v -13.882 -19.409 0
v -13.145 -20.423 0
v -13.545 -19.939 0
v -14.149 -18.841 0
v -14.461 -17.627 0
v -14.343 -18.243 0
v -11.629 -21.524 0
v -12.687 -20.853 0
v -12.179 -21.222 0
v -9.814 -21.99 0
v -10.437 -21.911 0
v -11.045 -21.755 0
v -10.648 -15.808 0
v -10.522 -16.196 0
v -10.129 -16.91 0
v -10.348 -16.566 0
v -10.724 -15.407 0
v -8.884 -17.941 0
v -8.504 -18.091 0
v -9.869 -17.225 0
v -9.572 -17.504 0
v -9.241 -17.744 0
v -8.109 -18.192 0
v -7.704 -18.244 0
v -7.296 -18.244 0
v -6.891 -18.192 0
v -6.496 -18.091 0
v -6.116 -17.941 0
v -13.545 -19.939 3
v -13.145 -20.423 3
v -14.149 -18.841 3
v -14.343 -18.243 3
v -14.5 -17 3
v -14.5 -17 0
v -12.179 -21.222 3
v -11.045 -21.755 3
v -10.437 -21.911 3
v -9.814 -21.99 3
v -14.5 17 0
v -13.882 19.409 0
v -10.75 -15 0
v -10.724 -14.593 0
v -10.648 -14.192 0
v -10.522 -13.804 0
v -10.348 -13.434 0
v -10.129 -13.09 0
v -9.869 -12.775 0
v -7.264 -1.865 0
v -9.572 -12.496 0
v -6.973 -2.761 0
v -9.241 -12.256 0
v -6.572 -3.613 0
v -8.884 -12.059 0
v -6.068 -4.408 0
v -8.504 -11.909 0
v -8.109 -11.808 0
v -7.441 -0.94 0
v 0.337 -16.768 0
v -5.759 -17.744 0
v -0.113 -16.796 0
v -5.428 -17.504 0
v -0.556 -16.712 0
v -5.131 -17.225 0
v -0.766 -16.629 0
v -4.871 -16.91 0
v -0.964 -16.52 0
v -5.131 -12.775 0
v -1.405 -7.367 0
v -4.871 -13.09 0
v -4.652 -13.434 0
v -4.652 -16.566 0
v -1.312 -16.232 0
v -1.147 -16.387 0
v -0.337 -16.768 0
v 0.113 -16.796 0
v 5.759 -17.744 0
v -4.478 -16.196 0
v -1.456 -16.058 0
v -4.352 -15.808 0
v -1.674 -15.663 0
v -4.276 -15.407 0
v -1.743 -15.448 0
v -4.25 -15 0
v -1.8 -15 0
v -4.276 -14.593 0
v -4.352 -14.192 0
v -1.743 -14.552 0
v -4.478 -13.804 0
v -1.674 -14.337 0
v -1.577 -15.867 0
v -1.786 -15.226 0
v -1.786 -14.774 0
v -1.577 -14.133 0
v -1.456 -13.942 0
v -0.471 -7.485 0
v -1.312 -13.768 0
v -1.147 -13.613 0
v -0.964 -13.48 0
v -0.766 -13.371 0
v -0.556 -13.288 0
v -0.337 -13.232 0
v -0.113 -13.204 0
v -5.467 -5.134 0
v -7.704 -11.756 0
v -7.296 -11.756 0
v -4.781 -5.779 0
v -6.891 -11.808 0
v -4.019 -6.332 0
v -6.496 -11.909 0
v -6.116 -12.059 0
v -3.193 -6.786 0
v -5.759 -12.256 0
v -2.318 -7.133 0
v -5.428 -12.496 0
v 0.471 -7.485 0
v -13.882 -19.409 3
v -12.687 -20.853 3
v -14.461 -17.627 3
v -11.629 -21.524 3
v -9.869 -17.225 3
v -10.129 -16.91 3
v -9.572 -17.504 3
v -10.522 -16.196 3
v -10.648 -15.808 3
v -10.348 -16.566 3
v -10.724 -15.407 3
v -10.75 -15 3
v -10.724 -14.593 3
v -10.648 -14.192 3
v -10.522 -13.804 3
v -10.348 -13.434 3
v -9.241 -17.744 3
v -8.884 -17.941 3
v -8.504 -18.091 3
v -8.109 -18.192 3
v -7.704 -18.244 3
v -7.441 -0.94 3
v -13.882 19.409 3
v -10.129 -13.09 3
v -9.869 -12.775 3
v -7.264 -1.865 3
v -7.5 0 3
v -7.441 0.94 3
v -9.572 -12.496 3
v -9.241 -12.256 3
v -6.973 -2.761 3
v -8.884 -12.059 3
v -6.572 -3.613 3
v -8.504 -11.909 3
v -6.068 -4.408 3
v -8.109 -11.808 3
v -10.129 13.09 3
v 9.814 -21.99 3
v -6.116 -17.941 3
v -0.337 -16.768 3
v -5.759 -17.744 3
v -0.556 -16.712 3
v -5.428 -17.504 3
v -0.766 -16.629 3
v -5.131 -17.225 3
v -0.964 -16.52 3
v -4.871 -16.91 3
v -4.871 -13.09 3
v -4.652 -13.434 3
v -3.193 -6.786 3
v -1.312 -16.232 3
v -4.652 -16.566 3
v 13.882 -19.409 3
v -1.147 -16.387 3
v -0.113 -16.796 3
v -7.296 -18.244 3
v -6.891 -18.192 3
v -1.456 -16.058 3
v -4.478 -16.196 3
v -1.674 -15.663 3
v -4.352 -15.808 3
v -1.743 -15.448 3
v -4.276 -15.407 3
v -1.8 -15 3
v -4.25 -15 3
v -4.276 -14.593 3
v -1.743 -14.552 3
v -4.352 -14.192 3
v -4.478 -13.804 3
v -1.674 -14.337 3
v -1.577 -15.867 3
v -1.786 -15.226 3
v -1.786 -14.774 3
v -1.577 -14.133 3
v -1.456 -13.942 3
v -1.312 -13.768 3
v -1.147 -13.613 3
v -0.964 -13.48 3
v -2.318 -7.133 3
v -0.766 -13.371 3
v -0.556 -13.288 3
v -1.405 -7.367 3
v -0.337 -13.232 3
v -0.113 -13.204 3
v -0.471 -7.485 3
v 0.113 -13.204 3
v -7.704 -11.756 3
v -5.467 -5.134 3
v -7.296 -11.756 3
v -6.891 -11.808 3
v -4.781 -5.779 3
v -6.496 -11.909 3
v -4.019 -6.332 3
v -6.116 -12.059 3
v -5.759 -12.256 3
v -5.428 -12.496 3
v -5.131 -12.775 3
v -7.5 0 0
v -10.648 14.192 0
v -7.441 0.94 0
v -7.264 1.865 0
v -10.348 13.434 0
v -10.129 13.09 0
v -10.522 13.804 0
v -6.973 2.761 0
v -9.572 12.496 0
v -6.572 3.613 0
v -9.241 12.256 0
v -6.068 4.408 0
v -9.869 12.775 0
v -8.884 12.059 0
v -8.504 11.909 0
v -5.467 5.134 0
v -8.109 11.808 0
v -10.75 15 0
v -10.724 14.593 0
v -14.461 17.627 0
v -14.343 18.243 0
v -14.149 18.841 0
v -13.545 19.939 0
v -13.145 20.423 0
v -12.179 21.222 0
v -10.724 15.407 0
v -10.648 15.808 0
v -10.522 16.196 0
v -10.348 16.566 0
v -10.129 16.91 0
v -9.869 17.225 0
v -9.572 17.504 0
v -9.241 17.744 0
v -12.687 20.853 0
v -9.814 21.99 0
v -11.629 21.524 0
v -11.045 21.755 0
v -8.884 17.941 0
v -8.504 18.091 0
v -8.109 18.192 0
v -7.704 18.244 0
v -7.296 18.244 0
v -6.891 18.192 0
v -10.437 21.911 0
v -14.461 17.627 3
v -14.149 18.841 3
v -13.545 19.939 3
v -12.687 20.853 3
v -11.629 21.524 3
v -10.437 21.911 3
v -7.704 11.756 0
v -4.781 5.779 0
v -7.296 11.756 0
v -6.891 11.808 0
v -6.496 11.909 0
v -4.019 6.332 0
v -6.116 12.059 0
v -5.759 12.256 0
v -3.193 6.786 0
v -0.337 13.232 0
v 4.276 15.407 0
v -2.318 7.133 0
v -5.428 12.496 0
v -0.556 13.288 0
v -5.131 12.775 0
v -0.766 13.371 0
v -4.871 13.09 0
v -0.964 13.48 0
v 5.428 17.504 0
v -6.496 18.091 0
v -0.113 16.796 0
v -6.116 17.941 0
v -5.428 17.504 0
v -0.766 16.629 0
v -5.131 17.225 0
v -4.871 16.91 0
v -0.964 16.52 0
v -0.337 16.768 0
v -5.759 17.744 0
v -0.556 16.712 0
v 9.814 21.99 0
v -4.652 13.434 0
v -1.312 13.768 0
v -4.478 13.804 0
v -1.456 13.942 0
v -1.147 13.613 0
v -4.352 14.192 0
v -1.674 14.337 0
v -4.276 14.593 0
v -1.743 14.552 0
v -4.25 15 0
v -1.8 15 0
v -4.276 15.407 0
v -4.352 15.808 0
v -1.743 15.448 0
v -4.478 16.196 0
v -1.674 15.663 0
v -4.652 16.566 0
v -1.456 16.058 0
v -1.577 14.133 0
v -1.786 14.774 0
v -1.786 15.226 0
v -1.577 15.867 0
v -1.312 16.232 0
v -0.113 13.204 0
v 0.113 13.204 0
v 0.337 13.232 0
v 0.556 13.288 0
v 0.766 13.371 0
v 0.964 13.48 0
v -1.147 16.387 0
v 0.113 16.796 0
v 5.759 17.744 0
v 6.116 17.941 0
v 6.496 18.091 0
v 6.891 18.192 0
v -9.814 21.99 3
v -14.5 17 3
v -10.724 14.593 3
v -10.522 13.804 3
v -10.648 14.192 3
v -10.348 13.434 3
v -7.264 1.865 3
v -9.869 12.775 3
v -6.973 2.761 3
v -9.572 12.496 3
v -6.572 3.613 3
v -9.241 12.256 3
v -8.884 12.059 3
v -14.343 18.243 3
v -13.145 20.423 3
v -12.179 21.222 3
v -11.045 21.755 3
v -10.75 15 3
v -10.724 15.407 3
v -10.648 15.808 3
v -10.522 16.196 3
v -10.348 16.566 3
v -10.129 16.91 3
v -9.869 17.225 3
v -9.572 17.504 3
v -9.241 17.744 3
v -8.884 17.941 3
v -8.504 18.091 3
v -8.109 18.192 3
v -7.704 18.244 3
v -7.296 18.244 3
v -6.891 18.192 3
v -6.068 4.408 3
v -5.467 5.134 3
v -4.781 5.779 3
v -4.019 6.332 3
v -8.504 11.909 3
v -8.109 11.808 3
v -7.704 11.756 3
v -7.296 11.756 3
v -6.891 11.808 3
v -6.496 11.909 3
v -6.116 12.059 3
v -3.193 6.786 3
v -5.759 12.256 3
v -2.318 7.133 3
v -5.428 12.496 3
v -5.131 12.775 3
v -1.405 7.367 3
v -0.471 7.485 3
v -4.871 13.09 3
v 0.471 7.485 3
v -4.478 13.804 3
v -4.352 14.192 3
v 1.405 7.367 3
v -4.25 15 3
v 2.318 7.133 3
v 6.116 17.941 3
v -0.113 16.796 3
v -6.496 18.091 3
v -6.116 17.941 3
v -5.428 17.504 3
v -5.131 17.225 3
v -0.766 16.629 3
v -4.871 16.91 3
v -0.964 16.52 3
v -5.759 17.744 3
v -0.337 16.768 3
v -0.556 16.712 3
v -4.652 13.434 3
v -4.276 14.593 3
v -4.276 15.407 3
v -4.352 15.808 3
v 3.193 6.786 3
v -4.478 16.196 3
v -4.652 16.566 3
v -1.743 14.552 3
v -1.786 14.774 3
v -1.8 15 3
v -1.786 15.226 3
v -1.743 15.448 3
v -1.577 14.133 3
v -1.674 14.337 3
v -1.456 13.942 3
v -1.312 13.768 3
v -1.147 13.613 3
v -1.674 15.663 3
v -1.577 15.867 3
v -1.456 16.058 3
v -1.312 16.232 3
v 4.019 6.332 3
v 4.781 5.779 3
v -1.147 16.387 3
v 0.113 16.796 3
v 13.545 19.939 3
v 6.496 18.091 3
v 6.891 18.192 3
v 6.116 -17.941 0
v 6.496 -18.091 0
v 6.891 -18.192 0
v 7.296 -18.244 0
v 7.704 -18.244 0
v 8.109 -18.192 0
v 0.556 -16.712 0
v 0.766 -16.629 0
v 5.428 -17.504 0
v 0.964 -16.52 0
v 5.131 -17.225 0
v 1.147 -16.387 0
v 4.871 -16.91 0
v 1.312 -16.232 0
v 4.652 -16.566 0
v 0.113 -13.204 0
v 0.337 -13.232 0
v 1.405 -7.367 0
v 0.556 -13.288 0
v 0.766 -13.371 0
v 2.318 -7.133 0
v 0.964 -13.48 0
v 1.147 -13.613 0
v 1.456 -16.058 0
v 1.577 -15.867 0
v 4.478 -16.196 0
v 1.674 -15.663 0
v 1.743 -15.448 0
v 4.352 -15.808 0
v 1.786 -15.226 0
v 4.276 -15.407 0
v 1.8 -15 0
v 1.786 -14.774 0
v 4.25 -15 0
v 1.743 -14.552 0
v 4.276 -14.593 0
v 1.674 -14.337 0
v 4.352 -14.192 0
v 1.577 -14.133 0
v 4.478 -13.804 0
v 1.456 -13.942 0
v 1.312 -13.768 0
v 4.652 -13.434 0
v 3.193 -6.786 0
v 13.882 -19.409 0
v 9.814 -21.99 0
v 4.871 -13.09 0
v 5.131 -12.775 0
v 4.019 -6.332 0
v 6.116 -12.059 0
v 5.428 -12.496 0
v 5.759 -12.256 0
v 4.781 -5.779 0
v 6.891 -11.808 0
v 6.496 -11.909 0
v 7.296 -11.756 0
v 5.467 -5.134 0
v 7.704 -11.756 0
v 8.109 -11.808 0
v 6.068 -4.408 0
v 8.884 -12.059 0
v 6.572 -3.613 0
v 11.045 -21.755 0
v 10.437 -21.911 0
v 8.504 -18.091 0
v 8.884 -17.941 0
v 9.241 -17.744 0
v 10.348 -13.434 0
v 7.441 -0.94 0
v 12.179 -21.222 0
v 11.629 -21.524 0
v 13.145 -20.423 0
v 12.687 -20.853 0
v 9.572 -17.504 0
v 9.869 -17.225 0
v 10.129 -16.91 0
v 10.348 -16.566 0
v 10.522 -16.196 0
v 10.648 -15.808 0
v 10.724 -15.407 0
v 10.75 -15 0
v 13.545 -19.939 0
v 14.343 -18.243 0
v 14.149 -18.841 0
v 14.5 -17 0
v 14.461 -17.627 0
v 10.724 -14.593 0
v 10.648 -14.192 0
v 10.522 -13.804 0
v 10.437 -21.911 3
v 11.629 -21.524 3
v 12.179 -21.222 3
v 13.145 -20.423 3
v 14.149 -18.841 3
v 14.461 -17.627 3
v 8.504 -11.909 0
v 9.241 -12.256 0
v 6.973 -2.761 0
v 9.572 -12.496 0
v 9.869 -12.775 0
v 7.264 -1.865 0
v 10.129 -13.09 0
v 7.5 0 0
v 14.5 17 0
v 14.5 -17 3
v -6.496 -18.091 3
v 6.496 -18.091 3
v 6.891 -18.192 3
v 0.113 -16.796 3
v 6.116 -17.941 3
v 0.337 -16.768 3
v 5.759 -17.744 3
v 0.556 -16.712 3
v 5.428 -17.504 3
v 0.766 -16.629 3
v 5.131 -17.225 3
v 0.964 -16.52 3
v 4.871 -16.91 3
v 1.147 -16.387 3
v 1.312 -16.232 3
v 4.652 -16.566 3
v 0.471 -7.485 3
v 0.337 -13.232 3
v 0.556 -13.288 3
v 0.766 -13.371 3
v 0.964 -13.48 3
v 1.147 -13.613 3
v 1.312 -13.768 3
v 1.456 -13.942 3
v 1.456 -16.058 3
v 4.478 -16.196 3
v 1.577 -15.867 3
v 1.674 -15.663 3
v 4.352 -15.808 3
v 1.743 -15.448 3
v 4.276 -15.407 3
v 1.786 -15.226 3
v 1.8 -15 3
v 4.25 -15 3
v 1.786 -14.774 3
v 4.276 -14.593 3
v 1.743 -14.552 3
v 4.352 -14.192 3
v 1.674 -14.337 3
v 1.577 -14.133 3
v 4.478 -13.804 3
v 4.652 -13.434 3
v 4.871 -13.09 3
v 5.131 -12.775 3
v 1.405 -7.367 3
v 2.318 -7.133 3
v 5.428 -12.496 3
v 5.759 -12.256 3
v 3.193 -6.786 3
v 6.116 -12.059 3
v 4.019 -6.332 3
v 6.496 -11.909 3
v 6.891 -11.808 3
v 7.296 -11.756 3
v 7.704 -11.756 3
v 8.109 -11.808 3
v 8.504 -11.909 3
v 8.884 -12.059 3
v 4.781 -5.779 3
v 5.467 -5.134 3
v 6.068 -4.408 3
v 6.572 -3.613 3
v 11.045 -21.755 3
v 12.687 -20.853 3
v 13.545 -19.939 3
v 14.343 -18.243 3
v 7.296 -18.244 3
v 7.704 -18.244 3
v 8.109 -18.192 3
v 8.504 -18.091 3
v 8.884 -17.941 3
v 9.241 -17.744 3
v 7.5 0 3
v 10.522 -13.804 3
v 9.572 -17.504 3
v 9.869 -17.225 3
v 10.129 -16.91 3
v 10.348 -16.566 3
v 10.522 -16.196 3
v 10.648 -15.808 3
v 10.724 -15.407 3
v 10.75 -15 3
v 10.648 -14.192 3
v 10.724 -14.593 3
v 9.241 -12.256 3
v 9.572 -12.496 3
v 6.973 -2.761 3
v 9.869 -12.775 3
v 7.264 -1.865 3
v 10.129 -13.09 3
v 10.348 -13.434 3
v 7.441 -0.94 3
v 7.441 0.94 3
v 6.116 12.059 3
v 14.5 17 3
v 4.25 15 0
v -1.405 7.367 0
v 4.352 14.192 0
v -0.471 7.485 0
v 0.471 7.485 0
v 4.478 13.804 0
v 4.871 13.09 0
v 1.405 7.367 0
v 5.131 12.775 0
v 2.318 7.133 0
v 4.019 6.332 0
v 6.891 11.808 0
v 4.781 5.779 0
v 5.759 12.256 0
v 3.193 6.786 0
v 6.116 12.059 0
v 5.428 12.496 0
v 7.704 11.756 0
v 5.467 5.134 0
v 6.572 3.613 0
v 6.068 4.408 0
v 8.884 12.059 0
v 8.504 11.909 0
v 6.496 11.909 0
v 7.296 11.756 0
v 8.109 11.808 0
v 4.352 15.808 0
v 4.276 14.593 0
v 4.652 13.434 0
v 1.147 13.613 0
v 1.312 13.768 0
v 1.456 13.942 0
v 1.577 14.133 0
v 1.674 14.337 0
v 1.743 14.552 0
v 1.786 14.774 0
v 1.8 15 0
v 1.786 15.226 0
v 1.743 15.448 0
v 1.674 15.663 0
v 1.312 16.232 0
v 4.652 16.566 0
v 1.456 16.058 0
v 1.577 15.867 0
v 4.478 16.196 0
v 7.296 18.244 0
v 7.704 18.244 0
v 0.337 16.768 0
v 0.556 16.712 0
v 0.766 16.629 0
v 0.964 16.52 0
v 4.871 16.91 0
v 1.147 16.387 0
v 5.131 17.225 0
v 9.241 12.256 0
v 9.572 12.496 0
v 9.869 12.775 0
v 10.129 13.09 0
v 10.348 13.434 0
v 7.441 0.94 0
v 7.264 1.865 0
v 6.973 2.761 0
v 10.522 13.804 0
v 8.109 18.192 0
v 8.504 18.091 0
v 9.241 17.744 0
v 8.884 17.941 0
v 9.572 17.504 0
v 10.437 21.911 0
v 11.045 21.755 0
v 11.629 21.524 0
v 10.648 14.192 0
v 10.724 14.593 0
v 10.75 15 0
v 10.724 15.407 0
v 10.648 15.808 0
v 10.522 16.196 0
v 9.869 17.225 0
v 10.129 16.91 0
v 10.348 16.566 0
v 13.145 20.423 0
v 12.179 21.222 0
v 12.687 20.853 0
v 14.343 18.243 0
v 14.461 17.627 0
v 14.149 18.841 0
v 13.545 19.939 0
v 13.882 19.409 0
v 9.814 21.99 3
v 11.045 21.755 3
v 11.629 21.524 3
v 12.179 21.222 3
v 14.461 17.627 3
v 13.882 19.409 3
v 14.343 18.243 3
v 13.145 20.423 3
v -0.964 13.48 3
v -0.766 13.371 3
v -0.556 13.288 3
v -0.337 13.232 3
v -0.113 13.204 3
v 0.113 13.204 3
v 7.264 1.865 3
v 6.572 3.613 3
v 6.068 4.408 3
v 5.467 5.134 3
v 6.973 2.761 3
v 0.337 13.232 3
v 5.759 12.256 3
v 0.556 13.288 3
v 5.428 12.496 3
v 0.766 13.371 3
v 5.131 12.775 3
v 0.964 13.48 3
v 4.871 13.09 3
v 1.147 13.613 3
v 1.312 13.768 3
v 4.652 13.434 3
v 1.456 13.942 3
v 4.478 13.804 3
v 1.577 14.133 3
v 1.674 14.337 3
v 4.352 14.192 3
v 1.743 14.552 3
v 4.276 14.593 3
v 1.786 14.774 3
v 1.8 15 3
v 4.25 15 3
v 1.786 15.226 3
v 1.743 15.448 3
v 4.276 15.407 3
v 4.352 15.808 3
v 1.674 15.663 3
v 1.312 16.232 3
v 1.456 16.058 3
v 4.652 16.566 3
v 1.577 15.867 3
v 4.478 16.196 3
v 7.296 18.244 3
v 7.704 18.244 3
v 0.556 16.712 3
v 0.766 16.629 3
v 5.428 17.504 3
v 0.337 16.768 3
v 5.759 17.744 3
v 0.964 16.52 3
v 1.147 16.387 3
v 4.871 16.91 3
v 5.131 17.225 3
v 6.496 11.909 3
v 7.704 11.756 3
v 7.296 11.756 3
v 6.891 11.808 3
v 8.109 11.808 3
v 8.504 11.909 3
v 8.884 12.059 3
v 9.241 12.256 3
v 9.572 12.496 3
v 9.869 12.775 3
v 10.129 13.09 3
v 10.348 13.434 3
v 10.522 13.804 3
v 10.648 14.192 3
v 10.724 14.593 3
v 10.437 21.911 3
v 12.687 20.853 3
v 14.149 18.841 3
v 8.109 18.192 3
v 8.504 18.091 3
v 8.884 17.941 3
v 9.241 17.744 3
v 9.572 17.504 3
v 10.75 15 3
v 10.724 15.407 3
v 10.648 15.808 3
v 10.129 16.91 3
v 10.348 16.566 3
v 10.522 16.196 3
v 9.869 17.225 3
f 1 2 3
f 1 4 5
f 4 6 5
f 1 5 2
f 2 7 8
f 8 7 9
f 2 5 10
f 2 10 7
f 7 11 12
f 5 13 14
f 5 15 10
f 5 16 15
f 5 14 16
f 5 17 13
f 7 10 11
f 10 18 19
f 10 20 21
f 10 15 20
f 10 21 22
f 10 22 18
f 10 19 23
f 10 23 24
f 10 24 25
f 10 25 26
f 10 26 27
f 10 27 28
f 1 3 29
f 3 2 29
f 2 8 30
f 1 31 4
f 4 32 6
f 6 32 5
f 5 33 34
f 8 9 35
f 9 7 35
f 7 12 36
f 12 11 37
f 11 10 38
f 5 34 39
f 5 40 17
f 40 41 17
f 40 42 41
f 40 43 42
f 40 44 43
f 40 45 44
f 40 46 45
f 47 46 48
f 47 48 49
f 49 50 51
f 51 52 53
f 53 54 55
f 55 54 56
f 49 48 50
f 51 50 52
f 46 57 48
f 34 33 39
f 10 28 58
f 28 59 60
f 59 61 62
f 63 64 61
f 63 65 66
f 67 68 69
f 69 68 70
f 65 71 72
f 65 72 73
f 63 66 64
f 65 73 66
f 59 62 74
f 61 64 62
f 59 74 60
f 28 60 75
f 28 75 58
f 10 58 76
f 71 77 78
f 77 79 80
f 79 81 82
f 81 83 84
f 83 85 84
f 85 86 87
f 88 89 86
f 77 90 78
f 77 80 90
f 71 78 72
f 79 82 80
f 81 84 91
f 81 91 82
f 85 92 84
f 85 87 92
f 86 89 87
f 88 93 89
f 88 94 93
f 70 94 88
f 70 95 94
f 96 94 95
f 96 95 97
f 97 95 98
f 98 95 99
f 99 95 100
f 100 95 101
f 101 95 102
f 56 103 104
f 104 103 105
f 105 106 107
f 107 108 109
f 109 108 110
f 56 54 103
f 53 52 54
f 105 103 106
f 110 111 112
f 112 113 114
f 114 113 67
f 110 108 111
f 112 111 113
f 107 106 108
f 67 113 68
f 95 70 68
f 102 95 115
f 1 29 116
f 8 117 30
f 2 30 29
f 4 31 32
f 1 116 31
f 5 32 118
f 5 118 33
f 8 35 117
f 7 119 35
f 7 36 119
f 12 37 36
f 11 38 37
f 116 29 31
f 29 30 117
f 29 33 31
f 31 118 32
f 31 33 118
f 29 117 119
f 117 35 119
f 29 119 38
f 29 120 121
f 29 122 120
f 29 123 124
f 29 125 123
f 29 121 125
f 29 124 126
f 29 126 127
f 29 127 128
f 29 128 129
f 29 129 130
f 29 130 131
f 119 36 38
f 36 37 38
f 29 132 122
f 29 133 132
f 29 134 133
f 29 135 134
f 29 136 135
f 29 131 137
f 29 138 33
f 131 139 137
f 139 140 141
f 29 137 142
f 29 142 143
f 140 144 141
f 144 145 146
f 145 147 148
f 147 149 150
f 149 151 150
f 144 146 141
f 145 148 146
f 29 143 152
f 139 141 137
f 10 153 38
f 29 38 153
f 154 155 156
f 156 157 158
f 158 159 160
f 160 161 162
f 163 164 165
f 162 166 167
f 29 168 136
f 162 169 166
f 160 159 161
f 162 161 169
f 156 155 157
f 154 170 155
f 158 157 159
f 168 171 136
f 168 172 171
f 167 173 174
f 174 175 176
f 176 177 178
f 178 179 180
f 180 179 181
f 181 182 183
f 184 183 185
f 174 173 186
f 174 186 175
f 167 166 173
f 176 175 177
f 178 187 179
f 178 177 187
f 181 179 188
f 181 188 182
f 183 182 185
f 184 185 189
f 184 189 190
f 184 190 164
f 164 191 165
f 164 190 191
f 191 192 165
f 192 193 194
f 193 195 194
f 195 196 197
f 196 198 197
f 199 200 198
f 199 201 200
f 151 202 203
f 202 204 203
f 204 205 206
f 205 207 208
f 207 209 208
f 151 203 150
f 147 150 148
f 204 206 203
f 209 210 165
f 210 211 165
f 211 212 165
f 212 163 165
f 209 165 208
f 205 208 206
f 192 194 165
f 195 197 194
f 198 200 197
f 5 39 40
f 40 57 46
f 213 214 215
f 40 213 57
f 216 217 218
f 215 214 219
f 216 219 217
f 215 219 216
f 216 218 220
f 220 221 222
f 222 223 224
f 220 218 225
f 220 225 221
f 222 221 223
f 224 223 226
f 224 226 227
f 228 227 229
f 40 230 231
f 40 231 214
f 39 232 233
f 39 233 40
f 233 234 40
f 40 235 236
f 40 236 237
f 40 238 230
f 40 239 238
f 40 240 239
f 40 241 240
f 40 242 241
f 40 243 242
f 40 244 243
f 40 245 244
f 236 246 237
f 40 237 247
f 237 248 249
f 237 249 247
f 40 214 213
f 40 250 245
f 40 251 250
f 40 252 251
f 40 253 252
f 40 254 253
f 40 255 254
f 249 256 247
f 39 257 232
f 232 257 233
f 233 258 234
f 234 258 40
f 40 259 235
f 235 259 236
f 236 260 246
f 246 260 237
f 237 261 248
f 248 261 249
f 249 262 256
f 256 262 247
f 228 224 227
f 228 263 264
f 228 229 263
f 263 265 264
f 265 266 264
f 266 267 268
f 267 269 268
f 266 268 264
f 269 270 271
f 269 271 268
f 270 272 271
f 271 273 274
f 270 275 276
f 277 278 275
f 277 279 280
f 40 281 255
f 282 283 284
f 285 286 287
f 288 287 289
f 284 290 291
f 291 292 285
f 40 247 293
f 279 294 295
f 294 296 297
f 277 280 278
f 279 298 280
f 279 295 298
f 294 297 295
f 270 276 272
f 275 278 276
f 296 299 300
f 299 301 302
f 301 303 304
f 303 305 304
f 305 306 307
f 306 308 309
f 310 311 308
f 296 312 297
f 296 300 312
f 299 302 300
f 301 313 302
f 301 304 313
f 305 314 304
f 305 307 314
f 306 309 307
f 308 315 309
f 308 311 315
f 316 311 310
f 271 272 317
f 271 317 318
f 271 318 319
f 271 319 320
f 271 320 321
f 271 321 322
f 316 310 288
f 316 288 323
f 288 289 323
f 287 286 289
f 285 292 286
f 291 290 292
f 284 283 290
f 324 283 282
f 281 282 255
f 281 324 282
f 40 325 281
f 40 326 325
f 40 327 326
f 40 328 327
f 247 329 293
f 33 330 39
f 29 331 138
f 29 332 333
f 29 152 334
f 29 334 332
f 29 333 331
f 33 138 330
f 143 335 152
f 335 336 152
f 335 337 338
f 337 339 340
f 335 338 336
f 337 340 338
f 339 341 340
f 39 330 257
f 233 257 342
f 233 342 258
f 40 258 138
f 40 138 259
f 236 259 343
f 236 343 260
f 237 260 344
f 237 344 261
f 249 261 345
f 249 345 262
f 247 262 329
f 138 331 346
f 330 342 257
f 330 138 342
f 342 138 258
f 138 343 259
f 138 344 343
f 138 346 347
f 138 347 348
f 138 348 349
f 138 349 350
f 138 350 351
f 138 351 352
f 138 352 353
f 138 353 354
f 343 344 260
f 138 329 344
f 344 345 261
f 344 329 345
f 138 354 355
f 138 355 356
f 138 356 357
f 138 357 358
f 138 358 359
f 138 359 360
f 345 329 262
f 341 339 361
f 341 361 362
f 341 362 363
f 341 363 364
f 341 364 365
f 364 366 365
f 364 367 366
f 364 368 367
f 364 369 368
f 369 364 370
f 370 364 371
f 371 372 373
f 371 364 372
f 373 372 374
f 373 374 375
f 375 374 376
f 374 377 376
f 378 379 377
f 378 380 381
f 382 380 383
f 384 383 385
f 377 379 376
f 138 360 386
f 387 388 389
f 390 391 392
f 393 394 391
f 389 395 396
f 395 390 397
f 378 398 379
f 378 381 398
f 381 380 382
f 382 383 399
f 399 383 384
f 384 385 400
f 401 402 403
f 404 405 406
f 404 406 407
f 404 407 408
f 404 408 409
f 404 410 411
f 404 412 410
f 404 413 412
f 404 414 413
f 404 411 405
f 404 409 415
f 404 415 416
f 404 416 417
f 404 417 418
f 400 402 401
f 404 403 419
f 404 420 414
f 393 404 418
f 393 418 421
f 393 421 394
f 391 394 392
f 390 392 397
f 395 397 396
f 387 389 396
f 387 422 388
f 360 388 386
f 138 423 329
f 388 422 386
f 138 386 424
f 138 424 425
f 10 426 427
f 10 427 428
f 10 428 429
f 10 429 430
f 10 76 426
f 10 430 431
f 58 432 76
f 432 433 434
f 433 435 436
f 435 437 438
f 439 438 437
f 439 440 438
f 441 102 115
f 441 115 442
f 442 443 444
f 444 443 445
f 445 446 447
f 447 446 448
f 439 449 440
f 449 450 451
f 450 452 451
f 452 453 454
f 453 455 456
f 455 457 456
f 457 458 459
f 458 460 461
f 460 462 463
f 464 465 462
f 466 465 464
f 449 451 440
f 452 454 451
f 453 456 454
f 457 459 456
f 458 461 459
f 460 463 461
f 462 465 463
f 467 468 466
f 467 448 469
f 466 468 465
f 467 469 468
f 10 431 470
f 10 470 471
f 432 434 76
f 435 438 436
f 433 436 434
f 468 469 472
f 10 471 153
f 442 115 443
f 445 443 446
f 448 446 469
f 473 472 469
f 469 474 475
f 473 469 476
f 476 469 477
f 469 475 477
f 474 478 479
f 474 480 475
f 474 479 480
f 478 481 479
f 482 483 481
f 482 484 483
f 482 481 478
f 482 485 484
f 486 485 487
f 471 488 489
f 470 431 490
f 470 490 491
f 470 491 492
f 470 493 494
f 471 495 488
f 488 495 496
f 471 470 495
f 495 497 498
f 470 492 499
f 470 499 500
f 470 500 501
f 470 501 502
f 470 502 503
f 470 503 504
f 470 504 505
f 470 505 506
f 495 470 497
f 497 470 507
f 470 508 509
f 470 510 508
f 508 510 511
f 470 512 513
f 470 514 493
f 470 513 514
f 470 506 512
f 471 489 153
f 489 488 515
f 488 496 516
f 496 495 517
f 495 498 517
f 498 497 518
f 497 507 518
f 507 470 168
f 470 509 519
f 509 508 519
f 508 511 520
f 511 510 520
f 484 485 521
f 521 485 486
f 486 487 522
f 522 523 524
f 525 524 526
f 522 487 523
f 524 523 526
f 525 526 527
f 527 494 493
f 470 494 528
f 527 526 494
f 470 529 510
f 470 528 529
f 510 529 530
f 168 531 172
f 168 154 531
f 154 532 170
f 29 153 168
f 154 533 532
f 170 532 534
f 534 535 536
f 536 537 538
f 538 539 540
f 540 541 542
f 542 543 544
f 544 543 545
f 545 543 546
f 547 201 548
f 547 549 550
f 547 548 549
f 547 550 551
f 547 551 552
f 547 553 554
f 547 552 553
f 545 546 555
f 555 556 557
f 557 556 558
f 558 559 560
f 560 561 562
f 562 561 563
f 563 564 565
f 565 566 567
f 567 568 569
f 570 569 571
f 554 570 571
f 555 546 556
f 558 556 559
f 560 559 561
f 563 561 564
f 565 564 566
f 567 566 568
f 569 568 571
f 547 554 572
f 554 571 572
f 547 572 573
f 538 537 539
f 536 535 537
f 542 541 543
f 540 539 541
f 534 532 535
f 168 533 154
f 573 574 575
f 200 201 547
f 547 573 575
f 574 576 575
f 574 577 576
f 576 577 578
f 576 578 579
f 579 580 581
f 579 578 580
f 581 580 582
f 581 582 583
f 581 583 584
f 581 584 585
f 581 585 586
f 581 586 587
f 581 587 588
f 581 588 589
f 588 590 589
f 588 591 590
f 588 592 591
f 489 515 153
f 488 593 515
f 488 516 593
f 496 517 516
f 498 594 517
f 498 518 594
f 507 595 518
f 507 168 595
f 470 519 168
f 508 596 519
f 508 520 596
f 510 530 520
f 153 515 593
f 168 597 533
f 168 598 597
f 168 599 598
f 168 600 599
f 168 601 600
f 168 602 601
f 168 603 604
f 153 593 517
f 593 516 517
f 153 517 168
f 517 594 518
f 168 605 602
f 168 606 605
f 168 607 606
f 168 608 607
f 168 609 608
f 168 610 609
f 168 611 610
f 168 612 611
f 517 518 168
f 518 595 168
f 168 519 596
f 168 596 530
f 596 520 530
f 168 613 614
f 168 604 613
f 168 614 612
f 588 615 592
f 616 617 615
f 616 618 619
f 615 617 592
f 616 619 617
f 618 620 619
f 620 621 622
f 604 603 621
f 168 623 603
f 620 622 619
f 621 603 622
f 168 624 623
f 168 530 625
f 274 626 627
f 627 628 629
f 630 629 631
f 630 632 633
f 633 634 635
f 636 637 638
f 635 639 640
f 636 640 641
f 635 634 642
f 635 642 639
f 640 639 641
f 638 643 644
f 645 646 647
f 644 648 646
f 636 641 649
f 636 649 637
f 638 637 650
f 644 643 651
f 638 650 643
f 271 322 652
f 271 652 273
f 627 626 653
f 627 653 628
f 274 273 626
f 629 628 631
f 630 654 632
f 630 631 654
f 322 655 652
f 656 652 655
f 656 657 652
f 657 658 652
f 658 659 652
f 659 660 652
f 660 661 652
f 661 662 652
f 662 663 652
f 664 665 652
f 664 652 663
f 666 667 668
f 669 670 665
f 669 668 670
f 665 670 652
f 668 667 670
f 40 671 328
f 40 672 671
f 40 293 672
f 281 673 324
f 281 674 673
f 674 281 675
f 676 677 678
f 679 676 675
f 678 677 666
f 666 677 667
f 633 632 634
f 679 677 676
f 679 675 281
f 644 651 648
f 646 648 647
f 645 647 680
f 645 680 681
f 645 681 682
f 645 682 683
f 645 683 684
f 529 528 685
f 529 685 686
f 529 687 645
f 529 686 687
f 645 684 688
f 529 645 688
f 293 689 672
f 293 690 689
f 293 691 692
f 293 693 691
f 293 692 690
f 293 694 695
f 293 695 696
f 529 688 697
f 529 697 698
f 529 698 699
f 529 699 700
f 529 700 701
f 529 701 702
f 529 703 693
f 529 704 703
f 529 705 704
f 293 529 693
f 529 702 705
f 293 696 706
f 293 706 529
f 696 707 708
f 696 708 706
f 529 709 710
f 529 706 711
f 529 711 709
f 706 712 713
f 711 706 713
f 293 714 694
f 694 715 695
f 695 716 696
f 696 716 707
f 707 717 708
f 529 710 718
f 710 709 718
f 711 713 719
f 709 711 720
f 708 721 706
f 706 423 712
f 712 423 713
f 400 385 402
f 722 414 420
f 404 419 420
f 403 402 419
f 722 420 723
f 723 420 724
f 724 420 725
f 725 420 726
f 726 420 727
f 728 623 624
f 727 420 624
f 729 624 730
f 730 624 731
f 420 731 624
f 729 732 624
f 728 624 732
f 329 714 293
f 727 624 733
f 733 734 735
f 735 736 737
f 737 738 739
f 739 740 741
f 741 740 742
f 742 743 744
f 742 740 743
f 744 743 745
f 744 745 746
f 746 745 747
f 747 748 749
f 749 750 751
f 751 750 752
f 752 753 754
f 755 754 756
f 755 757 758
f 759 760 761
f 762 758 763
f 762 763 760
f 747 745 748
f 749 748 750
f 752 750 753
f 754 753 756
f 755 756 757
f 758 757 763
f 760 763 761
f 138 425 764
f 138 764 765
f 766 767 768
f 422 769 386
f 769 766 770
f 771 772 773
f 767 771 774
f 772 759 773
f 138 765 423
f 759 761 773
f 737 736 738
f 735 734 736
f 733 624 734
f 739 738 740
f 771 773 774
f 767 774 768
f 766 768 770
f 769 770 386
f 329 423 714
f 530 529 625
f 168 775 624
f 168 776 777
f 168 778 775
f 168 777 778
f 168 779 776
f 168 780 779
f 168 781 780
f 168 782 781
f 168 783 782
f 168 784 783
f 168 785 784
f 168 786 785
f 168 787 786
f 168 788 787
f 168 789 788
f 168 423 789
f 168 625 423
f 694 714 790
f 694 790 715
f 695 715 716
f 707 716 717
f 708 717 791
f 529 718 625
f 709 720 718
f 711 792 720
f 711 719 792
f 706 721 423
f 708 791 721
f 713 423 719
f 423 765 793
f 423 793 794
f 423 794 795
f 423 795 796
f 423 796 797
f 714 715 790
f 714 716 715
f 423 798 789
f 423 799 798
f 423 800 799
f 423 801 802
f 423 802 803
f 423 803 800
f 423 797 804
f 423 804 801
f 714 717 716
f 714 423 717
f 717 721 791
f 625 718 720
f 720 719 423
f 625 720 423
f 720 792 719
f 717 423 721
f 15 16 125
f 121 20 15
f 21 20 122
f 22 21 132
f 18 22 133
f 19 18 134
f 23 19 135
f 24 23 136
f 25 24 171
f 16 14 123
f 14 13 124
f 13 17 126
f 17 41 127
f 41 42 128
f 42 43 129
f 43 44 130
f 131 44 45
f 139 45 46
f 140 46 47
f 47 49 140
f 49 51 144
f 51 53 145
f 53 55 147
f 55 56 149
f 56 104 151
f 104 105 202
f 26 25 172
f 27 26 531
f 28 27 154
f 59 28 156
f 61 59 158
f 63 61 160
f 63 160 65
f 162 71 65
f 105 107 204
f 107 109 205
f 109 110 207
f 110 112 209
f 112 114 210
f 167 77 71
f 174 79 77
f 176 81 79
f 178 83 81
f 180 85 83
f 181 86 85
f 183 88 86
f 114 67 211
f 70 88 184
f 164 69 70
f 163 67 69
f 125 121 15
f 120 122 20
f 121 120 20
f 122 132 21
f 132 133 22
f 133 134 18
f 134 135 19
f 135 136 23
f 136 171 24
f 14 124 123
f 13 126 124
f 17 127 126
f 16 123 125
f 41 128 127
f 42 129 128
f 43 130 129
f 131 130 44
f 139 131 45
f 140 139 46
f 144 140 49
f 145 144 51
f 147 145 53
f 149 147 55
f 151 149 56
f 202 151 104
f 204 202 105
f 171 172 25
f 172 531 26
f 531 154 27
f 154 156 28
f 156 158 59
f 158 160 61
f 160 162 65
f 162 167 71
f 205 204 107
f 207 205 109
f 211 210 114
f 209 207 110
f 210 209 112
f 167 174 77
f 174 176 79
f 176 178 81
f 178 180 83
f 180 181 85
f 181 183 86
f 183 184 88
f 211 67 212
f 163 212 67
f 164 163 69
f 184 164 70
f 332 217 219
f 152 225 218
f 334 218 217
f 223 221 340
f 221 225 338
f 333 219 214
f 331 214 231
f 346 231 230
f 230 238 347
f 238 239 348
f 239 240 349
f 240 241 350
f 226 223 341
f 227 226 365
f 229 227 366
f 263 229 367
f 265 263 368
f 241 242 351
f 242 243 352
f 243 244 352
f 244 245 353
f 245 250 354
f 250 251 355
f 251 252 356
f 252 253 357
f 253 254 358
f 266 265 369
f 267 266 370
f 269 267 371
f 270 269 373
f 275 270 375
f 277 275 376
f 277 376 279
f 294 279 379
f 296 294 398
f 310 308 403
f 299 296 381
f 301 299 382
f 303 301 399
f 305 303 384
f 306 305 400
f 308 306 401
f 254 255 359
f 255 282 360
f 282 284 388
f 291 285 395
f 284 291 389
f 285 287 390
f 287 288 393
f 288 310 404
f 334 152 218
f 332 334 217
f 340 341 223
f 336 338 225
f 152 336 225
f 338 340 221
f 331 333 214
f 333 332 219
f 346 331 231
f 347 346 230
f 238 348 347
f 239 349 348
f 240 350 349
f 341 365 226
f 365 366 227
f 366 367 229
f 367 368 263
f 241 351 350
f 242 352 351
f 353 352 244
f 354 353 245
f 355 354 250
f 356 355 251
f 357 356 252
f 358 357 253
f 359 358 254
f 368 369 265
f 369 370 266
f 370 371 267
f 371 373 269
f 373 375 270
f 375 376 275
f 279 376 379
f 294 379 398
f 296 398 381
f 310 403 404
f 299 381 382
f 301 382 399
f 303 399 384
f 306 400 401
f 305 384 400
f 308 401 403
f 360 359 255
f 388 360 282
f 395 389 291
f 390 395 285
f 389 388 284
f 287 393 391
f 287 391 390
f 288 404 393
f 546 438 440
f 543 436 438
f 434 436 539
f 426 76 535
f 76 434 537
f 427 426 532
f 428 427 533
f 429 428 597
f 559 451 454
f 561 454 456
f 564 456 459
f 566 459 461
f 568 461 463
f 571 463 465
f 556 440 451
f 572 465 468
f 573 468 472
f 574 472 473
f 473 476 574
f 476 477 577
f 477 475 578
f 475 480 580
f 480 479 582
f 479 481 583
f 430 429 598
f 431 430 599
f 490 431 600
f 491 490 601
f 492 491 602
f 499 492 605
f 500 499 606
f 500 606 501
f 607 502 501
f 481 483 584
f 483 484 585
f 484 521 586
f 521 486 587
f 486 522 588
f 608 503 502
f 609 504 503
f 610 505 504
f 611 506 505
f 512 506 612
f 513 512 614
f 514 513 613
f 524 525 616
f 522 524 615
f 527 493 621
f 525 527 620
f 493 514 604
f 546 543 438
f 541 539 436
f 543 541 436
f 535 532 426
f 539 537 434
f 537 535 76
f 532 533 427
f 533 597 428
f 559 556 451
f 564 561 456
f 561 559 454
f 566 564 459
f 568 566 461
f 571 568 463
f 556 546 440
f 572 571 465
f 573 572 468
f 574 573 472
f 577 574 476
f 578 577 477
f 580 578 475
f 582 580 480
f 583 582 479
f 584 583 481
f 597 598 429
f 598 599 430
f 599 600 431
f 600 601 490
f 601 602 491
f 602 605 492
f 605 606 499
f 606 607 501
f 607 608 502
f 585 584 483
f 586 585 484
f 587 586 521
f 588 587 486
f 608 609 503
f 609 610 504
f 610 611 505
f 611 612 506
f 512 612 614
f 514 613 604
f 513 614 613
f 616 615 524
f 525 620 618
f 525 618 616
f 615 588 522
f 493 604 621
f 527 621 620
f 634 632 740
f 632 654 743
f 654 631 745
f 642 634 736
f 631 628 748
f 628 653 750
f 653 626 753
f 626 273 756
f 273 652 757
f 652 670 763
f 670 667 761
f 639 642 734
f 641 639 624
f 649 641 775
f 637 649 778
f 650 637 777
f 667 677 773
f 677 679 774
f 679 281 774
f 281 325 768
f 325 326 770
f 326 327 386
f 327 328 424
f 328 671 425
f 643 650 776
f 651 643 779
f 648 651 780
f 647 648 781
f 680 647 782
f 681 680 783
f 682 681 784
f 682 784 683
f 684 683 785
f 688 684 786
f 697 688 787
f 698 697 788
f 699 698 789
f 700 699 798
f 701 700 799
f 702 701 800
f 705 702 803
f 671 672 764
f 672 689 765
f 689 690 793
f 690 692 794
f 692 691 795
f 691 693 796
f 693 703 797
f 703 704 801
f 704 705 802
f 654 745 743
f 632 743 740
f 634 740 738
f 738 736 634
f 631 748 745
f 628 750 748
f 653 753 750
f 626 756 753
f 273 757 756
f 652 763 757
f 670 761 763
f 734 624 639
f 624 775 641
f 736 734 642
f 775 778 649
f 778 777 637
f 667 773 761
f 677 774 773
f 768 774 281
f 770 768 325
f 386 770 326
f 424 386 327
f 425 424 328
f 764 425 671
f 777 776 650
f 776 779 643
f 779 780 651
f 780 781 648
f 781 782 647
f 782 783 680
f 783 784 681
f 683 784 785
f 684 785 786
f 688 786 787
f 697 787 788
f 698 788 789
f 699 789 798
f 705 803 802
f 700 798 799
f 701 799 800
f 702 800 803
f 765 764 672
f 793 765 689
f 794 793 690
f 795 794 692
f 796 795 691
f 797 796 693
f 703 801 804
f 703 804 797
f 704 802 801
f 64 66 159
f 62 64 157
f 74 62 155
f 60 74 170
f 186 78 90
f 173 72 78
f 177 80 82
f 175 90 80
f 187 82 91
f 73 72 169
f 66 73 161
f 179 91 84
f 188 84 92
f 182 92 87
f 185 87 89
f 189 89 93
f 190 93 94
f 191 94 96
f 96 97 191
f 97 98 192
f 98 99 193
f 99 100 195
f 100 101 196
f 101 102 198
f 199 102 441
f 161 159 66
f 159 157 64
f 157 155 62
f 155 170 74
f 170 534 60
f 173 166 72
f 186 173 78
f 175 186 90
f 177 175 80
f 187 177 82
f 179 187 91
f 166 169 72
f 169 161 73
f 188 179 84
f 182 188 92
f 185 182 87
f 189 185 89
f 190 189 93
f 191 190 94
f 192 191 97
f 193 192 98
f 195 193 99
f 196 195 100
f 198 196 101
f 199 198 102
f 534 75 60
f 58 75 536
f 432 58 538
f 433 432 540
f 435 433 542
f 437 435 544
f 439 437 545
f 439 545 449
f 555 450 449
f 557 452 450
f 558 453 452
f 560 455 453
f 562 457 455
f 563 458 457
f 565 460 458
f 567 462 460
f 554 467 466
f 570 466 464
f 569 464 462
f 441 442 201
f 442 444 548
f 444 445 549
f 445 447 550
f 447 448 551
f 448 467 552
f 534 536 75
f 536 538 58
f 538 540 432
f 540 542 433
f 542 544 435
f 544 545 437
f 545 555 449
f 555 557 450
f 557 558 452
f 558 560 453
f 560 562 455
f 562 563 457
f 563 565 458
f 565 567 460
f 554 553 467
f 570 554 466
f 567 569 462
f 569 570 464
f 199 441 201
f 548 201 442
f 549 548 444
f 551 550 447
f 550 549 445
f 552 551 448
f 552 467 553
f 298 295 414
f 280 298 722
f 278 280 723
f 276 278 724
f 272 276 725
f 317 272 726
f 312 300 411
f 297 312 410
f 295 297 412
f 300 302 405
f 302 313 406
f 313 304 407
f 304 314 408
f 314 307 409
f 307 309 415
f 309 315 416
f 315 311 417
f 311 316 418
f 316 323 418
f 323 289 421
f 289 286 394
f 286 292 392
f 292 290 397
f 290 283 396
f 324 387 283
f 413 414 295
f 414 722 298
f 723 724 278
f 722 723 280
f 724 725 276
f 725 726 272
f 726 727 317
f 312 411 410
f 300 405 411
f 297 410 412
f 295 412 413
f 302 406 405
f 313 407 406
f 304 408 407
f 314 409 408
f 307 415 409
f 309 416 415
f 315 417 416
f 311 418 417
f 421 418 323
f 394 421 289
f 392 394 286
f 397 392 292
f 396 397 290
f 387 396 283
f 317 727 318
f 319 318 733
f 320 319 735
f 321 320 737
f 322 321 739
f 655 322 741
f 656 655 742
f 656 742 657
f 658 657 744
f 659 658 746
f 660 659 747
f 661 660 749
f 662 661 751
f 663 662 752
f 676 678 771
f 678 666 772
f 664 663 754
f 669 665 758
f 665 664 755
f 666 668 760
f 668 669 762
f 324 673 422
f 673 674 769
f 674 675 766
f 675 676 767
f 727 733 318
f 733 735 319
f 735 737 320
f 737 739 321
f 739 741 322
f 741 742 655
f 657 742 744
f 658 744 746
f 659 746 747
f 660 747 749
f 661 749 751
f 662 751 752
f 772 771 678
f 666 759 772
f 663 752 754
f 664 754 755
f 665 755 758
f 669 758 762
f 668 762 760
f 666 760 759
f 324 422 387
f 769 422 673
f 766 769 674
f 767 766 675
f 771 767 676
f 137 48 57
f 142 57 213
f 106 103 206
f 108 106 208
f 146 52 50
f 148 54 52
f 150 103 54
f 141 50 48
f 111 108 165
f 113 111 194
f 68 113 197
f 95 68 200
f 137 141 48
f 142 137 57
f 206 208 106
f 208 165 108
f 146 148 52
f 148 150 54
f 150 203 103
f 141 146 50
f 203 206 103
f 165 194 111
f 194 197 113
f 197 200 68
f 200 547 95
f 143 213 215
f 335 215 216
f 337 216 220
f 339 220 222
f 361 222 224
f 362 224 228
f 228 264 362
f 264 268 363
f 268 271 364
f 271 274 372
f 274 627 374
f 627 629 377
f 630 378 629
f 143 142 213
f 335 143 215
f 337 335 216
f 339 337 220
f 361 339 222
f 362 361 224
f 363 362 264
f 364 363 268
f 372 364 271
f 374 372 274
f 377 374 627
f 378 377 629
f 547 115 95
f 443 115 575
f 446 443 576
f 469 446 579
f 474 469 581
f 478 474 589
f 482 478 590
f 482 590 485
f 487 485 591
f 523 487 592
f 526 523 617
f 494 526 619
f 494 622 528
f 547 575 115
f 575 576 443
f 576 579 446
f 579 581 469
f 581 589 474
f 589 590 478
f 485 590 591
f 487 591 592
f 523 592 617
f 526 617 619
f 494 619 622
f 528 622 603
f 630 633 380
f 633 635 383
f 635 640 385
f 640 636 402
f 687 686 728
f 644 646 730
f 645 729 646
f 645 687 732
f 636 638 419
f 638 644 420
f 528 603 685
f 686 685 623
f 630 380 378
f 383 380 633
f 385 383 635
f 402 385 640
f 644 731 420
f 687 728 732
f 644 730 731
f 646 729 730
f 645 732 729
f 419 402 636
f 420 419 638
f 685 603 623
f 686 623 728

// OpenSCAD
$fn = 50;

difference() {
	union() {
		hull() {
			translate(v = [-9.5, 17.0, 0]) {
				cylinder(h = 3, r = 5);
			}
			translate(v = [9.5, 17.0, 0]) {
				cylinder(h = 3, r = 5);
			}
			translate(v = [-9.5, -17.0, 0]) {
				cylinder(h = 3, r = 5);
			}
			translate(v = [9.5, -17.0, 0]) {
				cylinder(h = 3, r = 5);
			}
		}
	}
	union() {
		translate(v = [-7.5, -15.0, 0]) {
			cylinder(h = 3, r = 3.25);
		}
		translate(v = [-7.5, 15.0, 0]) {
			cylinder(h = 3, r = 3.25);
		}
		translate(v = [7.5, -15.0, 0]) {
			cylinder(h = 3, r = 3.25);
		}
		translate(v = [7.5, 15.0, 0]) {
			cylinder(h = 3, r = 3.25);
		}
		translate(v = [0.0, -15.0, 0]) {
			cylinder(h = 3, r = 1.8);
		}
		translate(v = [0.0, 15.0, 0]) {
			cylinder(h = 3, r = 1.8);
		}
		cylinder(h = 3, r = 7.5);
	}
}
